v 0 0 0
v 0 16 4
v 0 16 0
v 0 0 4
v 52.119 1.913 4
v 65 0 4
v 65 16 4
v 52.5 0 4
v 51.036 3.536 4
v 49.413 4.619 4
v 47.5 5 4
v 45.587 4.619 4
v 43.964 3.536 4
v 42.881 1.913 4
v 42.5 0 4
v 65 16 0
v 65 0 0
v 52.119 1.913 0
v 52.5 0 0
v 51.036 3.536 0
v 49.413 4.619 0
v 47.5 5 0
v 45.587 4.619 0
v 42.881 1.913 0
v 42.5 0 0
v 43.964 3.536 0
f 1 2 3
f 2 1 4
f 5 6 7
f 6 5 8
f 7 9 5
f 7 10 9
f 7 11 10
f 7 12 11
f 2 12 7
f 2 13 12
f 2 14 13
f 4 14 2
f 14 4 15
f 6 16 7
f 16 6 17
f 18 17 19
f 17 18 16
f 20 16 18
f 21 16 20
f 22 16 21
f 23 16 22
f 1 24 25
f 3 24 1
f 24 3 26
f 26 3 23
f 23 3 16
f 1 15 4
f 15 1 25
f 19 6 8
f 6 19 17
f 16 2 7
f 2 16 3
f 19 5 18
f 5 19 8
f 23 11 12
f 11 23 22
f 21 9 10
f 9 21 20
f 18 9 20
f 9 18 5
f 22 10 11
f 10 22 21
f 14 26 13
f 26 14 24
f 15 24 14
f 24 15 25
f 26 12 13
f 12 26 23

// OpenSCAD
// how big the frame itself will be
border_size = 8;

// diameter of the usb extension cable exit
cable_diameter = 5;

// cable offset: where the center of the cable should lie in the piece. this
// seems like a magic number, but it's the total width (275) over 2 (137.5),
// minus the width of left_side_and_bottom (90)
cable_offset = 47.5;

// section size
width = 65;

difference() {
	cube([width, border_size * 2, border_size / 2]);

	translate([cable_offset, 0, border_size * -0.5]) {
		cylinder(border_size * 1.5, cable_diameter, cable_diameter);
	}
}
